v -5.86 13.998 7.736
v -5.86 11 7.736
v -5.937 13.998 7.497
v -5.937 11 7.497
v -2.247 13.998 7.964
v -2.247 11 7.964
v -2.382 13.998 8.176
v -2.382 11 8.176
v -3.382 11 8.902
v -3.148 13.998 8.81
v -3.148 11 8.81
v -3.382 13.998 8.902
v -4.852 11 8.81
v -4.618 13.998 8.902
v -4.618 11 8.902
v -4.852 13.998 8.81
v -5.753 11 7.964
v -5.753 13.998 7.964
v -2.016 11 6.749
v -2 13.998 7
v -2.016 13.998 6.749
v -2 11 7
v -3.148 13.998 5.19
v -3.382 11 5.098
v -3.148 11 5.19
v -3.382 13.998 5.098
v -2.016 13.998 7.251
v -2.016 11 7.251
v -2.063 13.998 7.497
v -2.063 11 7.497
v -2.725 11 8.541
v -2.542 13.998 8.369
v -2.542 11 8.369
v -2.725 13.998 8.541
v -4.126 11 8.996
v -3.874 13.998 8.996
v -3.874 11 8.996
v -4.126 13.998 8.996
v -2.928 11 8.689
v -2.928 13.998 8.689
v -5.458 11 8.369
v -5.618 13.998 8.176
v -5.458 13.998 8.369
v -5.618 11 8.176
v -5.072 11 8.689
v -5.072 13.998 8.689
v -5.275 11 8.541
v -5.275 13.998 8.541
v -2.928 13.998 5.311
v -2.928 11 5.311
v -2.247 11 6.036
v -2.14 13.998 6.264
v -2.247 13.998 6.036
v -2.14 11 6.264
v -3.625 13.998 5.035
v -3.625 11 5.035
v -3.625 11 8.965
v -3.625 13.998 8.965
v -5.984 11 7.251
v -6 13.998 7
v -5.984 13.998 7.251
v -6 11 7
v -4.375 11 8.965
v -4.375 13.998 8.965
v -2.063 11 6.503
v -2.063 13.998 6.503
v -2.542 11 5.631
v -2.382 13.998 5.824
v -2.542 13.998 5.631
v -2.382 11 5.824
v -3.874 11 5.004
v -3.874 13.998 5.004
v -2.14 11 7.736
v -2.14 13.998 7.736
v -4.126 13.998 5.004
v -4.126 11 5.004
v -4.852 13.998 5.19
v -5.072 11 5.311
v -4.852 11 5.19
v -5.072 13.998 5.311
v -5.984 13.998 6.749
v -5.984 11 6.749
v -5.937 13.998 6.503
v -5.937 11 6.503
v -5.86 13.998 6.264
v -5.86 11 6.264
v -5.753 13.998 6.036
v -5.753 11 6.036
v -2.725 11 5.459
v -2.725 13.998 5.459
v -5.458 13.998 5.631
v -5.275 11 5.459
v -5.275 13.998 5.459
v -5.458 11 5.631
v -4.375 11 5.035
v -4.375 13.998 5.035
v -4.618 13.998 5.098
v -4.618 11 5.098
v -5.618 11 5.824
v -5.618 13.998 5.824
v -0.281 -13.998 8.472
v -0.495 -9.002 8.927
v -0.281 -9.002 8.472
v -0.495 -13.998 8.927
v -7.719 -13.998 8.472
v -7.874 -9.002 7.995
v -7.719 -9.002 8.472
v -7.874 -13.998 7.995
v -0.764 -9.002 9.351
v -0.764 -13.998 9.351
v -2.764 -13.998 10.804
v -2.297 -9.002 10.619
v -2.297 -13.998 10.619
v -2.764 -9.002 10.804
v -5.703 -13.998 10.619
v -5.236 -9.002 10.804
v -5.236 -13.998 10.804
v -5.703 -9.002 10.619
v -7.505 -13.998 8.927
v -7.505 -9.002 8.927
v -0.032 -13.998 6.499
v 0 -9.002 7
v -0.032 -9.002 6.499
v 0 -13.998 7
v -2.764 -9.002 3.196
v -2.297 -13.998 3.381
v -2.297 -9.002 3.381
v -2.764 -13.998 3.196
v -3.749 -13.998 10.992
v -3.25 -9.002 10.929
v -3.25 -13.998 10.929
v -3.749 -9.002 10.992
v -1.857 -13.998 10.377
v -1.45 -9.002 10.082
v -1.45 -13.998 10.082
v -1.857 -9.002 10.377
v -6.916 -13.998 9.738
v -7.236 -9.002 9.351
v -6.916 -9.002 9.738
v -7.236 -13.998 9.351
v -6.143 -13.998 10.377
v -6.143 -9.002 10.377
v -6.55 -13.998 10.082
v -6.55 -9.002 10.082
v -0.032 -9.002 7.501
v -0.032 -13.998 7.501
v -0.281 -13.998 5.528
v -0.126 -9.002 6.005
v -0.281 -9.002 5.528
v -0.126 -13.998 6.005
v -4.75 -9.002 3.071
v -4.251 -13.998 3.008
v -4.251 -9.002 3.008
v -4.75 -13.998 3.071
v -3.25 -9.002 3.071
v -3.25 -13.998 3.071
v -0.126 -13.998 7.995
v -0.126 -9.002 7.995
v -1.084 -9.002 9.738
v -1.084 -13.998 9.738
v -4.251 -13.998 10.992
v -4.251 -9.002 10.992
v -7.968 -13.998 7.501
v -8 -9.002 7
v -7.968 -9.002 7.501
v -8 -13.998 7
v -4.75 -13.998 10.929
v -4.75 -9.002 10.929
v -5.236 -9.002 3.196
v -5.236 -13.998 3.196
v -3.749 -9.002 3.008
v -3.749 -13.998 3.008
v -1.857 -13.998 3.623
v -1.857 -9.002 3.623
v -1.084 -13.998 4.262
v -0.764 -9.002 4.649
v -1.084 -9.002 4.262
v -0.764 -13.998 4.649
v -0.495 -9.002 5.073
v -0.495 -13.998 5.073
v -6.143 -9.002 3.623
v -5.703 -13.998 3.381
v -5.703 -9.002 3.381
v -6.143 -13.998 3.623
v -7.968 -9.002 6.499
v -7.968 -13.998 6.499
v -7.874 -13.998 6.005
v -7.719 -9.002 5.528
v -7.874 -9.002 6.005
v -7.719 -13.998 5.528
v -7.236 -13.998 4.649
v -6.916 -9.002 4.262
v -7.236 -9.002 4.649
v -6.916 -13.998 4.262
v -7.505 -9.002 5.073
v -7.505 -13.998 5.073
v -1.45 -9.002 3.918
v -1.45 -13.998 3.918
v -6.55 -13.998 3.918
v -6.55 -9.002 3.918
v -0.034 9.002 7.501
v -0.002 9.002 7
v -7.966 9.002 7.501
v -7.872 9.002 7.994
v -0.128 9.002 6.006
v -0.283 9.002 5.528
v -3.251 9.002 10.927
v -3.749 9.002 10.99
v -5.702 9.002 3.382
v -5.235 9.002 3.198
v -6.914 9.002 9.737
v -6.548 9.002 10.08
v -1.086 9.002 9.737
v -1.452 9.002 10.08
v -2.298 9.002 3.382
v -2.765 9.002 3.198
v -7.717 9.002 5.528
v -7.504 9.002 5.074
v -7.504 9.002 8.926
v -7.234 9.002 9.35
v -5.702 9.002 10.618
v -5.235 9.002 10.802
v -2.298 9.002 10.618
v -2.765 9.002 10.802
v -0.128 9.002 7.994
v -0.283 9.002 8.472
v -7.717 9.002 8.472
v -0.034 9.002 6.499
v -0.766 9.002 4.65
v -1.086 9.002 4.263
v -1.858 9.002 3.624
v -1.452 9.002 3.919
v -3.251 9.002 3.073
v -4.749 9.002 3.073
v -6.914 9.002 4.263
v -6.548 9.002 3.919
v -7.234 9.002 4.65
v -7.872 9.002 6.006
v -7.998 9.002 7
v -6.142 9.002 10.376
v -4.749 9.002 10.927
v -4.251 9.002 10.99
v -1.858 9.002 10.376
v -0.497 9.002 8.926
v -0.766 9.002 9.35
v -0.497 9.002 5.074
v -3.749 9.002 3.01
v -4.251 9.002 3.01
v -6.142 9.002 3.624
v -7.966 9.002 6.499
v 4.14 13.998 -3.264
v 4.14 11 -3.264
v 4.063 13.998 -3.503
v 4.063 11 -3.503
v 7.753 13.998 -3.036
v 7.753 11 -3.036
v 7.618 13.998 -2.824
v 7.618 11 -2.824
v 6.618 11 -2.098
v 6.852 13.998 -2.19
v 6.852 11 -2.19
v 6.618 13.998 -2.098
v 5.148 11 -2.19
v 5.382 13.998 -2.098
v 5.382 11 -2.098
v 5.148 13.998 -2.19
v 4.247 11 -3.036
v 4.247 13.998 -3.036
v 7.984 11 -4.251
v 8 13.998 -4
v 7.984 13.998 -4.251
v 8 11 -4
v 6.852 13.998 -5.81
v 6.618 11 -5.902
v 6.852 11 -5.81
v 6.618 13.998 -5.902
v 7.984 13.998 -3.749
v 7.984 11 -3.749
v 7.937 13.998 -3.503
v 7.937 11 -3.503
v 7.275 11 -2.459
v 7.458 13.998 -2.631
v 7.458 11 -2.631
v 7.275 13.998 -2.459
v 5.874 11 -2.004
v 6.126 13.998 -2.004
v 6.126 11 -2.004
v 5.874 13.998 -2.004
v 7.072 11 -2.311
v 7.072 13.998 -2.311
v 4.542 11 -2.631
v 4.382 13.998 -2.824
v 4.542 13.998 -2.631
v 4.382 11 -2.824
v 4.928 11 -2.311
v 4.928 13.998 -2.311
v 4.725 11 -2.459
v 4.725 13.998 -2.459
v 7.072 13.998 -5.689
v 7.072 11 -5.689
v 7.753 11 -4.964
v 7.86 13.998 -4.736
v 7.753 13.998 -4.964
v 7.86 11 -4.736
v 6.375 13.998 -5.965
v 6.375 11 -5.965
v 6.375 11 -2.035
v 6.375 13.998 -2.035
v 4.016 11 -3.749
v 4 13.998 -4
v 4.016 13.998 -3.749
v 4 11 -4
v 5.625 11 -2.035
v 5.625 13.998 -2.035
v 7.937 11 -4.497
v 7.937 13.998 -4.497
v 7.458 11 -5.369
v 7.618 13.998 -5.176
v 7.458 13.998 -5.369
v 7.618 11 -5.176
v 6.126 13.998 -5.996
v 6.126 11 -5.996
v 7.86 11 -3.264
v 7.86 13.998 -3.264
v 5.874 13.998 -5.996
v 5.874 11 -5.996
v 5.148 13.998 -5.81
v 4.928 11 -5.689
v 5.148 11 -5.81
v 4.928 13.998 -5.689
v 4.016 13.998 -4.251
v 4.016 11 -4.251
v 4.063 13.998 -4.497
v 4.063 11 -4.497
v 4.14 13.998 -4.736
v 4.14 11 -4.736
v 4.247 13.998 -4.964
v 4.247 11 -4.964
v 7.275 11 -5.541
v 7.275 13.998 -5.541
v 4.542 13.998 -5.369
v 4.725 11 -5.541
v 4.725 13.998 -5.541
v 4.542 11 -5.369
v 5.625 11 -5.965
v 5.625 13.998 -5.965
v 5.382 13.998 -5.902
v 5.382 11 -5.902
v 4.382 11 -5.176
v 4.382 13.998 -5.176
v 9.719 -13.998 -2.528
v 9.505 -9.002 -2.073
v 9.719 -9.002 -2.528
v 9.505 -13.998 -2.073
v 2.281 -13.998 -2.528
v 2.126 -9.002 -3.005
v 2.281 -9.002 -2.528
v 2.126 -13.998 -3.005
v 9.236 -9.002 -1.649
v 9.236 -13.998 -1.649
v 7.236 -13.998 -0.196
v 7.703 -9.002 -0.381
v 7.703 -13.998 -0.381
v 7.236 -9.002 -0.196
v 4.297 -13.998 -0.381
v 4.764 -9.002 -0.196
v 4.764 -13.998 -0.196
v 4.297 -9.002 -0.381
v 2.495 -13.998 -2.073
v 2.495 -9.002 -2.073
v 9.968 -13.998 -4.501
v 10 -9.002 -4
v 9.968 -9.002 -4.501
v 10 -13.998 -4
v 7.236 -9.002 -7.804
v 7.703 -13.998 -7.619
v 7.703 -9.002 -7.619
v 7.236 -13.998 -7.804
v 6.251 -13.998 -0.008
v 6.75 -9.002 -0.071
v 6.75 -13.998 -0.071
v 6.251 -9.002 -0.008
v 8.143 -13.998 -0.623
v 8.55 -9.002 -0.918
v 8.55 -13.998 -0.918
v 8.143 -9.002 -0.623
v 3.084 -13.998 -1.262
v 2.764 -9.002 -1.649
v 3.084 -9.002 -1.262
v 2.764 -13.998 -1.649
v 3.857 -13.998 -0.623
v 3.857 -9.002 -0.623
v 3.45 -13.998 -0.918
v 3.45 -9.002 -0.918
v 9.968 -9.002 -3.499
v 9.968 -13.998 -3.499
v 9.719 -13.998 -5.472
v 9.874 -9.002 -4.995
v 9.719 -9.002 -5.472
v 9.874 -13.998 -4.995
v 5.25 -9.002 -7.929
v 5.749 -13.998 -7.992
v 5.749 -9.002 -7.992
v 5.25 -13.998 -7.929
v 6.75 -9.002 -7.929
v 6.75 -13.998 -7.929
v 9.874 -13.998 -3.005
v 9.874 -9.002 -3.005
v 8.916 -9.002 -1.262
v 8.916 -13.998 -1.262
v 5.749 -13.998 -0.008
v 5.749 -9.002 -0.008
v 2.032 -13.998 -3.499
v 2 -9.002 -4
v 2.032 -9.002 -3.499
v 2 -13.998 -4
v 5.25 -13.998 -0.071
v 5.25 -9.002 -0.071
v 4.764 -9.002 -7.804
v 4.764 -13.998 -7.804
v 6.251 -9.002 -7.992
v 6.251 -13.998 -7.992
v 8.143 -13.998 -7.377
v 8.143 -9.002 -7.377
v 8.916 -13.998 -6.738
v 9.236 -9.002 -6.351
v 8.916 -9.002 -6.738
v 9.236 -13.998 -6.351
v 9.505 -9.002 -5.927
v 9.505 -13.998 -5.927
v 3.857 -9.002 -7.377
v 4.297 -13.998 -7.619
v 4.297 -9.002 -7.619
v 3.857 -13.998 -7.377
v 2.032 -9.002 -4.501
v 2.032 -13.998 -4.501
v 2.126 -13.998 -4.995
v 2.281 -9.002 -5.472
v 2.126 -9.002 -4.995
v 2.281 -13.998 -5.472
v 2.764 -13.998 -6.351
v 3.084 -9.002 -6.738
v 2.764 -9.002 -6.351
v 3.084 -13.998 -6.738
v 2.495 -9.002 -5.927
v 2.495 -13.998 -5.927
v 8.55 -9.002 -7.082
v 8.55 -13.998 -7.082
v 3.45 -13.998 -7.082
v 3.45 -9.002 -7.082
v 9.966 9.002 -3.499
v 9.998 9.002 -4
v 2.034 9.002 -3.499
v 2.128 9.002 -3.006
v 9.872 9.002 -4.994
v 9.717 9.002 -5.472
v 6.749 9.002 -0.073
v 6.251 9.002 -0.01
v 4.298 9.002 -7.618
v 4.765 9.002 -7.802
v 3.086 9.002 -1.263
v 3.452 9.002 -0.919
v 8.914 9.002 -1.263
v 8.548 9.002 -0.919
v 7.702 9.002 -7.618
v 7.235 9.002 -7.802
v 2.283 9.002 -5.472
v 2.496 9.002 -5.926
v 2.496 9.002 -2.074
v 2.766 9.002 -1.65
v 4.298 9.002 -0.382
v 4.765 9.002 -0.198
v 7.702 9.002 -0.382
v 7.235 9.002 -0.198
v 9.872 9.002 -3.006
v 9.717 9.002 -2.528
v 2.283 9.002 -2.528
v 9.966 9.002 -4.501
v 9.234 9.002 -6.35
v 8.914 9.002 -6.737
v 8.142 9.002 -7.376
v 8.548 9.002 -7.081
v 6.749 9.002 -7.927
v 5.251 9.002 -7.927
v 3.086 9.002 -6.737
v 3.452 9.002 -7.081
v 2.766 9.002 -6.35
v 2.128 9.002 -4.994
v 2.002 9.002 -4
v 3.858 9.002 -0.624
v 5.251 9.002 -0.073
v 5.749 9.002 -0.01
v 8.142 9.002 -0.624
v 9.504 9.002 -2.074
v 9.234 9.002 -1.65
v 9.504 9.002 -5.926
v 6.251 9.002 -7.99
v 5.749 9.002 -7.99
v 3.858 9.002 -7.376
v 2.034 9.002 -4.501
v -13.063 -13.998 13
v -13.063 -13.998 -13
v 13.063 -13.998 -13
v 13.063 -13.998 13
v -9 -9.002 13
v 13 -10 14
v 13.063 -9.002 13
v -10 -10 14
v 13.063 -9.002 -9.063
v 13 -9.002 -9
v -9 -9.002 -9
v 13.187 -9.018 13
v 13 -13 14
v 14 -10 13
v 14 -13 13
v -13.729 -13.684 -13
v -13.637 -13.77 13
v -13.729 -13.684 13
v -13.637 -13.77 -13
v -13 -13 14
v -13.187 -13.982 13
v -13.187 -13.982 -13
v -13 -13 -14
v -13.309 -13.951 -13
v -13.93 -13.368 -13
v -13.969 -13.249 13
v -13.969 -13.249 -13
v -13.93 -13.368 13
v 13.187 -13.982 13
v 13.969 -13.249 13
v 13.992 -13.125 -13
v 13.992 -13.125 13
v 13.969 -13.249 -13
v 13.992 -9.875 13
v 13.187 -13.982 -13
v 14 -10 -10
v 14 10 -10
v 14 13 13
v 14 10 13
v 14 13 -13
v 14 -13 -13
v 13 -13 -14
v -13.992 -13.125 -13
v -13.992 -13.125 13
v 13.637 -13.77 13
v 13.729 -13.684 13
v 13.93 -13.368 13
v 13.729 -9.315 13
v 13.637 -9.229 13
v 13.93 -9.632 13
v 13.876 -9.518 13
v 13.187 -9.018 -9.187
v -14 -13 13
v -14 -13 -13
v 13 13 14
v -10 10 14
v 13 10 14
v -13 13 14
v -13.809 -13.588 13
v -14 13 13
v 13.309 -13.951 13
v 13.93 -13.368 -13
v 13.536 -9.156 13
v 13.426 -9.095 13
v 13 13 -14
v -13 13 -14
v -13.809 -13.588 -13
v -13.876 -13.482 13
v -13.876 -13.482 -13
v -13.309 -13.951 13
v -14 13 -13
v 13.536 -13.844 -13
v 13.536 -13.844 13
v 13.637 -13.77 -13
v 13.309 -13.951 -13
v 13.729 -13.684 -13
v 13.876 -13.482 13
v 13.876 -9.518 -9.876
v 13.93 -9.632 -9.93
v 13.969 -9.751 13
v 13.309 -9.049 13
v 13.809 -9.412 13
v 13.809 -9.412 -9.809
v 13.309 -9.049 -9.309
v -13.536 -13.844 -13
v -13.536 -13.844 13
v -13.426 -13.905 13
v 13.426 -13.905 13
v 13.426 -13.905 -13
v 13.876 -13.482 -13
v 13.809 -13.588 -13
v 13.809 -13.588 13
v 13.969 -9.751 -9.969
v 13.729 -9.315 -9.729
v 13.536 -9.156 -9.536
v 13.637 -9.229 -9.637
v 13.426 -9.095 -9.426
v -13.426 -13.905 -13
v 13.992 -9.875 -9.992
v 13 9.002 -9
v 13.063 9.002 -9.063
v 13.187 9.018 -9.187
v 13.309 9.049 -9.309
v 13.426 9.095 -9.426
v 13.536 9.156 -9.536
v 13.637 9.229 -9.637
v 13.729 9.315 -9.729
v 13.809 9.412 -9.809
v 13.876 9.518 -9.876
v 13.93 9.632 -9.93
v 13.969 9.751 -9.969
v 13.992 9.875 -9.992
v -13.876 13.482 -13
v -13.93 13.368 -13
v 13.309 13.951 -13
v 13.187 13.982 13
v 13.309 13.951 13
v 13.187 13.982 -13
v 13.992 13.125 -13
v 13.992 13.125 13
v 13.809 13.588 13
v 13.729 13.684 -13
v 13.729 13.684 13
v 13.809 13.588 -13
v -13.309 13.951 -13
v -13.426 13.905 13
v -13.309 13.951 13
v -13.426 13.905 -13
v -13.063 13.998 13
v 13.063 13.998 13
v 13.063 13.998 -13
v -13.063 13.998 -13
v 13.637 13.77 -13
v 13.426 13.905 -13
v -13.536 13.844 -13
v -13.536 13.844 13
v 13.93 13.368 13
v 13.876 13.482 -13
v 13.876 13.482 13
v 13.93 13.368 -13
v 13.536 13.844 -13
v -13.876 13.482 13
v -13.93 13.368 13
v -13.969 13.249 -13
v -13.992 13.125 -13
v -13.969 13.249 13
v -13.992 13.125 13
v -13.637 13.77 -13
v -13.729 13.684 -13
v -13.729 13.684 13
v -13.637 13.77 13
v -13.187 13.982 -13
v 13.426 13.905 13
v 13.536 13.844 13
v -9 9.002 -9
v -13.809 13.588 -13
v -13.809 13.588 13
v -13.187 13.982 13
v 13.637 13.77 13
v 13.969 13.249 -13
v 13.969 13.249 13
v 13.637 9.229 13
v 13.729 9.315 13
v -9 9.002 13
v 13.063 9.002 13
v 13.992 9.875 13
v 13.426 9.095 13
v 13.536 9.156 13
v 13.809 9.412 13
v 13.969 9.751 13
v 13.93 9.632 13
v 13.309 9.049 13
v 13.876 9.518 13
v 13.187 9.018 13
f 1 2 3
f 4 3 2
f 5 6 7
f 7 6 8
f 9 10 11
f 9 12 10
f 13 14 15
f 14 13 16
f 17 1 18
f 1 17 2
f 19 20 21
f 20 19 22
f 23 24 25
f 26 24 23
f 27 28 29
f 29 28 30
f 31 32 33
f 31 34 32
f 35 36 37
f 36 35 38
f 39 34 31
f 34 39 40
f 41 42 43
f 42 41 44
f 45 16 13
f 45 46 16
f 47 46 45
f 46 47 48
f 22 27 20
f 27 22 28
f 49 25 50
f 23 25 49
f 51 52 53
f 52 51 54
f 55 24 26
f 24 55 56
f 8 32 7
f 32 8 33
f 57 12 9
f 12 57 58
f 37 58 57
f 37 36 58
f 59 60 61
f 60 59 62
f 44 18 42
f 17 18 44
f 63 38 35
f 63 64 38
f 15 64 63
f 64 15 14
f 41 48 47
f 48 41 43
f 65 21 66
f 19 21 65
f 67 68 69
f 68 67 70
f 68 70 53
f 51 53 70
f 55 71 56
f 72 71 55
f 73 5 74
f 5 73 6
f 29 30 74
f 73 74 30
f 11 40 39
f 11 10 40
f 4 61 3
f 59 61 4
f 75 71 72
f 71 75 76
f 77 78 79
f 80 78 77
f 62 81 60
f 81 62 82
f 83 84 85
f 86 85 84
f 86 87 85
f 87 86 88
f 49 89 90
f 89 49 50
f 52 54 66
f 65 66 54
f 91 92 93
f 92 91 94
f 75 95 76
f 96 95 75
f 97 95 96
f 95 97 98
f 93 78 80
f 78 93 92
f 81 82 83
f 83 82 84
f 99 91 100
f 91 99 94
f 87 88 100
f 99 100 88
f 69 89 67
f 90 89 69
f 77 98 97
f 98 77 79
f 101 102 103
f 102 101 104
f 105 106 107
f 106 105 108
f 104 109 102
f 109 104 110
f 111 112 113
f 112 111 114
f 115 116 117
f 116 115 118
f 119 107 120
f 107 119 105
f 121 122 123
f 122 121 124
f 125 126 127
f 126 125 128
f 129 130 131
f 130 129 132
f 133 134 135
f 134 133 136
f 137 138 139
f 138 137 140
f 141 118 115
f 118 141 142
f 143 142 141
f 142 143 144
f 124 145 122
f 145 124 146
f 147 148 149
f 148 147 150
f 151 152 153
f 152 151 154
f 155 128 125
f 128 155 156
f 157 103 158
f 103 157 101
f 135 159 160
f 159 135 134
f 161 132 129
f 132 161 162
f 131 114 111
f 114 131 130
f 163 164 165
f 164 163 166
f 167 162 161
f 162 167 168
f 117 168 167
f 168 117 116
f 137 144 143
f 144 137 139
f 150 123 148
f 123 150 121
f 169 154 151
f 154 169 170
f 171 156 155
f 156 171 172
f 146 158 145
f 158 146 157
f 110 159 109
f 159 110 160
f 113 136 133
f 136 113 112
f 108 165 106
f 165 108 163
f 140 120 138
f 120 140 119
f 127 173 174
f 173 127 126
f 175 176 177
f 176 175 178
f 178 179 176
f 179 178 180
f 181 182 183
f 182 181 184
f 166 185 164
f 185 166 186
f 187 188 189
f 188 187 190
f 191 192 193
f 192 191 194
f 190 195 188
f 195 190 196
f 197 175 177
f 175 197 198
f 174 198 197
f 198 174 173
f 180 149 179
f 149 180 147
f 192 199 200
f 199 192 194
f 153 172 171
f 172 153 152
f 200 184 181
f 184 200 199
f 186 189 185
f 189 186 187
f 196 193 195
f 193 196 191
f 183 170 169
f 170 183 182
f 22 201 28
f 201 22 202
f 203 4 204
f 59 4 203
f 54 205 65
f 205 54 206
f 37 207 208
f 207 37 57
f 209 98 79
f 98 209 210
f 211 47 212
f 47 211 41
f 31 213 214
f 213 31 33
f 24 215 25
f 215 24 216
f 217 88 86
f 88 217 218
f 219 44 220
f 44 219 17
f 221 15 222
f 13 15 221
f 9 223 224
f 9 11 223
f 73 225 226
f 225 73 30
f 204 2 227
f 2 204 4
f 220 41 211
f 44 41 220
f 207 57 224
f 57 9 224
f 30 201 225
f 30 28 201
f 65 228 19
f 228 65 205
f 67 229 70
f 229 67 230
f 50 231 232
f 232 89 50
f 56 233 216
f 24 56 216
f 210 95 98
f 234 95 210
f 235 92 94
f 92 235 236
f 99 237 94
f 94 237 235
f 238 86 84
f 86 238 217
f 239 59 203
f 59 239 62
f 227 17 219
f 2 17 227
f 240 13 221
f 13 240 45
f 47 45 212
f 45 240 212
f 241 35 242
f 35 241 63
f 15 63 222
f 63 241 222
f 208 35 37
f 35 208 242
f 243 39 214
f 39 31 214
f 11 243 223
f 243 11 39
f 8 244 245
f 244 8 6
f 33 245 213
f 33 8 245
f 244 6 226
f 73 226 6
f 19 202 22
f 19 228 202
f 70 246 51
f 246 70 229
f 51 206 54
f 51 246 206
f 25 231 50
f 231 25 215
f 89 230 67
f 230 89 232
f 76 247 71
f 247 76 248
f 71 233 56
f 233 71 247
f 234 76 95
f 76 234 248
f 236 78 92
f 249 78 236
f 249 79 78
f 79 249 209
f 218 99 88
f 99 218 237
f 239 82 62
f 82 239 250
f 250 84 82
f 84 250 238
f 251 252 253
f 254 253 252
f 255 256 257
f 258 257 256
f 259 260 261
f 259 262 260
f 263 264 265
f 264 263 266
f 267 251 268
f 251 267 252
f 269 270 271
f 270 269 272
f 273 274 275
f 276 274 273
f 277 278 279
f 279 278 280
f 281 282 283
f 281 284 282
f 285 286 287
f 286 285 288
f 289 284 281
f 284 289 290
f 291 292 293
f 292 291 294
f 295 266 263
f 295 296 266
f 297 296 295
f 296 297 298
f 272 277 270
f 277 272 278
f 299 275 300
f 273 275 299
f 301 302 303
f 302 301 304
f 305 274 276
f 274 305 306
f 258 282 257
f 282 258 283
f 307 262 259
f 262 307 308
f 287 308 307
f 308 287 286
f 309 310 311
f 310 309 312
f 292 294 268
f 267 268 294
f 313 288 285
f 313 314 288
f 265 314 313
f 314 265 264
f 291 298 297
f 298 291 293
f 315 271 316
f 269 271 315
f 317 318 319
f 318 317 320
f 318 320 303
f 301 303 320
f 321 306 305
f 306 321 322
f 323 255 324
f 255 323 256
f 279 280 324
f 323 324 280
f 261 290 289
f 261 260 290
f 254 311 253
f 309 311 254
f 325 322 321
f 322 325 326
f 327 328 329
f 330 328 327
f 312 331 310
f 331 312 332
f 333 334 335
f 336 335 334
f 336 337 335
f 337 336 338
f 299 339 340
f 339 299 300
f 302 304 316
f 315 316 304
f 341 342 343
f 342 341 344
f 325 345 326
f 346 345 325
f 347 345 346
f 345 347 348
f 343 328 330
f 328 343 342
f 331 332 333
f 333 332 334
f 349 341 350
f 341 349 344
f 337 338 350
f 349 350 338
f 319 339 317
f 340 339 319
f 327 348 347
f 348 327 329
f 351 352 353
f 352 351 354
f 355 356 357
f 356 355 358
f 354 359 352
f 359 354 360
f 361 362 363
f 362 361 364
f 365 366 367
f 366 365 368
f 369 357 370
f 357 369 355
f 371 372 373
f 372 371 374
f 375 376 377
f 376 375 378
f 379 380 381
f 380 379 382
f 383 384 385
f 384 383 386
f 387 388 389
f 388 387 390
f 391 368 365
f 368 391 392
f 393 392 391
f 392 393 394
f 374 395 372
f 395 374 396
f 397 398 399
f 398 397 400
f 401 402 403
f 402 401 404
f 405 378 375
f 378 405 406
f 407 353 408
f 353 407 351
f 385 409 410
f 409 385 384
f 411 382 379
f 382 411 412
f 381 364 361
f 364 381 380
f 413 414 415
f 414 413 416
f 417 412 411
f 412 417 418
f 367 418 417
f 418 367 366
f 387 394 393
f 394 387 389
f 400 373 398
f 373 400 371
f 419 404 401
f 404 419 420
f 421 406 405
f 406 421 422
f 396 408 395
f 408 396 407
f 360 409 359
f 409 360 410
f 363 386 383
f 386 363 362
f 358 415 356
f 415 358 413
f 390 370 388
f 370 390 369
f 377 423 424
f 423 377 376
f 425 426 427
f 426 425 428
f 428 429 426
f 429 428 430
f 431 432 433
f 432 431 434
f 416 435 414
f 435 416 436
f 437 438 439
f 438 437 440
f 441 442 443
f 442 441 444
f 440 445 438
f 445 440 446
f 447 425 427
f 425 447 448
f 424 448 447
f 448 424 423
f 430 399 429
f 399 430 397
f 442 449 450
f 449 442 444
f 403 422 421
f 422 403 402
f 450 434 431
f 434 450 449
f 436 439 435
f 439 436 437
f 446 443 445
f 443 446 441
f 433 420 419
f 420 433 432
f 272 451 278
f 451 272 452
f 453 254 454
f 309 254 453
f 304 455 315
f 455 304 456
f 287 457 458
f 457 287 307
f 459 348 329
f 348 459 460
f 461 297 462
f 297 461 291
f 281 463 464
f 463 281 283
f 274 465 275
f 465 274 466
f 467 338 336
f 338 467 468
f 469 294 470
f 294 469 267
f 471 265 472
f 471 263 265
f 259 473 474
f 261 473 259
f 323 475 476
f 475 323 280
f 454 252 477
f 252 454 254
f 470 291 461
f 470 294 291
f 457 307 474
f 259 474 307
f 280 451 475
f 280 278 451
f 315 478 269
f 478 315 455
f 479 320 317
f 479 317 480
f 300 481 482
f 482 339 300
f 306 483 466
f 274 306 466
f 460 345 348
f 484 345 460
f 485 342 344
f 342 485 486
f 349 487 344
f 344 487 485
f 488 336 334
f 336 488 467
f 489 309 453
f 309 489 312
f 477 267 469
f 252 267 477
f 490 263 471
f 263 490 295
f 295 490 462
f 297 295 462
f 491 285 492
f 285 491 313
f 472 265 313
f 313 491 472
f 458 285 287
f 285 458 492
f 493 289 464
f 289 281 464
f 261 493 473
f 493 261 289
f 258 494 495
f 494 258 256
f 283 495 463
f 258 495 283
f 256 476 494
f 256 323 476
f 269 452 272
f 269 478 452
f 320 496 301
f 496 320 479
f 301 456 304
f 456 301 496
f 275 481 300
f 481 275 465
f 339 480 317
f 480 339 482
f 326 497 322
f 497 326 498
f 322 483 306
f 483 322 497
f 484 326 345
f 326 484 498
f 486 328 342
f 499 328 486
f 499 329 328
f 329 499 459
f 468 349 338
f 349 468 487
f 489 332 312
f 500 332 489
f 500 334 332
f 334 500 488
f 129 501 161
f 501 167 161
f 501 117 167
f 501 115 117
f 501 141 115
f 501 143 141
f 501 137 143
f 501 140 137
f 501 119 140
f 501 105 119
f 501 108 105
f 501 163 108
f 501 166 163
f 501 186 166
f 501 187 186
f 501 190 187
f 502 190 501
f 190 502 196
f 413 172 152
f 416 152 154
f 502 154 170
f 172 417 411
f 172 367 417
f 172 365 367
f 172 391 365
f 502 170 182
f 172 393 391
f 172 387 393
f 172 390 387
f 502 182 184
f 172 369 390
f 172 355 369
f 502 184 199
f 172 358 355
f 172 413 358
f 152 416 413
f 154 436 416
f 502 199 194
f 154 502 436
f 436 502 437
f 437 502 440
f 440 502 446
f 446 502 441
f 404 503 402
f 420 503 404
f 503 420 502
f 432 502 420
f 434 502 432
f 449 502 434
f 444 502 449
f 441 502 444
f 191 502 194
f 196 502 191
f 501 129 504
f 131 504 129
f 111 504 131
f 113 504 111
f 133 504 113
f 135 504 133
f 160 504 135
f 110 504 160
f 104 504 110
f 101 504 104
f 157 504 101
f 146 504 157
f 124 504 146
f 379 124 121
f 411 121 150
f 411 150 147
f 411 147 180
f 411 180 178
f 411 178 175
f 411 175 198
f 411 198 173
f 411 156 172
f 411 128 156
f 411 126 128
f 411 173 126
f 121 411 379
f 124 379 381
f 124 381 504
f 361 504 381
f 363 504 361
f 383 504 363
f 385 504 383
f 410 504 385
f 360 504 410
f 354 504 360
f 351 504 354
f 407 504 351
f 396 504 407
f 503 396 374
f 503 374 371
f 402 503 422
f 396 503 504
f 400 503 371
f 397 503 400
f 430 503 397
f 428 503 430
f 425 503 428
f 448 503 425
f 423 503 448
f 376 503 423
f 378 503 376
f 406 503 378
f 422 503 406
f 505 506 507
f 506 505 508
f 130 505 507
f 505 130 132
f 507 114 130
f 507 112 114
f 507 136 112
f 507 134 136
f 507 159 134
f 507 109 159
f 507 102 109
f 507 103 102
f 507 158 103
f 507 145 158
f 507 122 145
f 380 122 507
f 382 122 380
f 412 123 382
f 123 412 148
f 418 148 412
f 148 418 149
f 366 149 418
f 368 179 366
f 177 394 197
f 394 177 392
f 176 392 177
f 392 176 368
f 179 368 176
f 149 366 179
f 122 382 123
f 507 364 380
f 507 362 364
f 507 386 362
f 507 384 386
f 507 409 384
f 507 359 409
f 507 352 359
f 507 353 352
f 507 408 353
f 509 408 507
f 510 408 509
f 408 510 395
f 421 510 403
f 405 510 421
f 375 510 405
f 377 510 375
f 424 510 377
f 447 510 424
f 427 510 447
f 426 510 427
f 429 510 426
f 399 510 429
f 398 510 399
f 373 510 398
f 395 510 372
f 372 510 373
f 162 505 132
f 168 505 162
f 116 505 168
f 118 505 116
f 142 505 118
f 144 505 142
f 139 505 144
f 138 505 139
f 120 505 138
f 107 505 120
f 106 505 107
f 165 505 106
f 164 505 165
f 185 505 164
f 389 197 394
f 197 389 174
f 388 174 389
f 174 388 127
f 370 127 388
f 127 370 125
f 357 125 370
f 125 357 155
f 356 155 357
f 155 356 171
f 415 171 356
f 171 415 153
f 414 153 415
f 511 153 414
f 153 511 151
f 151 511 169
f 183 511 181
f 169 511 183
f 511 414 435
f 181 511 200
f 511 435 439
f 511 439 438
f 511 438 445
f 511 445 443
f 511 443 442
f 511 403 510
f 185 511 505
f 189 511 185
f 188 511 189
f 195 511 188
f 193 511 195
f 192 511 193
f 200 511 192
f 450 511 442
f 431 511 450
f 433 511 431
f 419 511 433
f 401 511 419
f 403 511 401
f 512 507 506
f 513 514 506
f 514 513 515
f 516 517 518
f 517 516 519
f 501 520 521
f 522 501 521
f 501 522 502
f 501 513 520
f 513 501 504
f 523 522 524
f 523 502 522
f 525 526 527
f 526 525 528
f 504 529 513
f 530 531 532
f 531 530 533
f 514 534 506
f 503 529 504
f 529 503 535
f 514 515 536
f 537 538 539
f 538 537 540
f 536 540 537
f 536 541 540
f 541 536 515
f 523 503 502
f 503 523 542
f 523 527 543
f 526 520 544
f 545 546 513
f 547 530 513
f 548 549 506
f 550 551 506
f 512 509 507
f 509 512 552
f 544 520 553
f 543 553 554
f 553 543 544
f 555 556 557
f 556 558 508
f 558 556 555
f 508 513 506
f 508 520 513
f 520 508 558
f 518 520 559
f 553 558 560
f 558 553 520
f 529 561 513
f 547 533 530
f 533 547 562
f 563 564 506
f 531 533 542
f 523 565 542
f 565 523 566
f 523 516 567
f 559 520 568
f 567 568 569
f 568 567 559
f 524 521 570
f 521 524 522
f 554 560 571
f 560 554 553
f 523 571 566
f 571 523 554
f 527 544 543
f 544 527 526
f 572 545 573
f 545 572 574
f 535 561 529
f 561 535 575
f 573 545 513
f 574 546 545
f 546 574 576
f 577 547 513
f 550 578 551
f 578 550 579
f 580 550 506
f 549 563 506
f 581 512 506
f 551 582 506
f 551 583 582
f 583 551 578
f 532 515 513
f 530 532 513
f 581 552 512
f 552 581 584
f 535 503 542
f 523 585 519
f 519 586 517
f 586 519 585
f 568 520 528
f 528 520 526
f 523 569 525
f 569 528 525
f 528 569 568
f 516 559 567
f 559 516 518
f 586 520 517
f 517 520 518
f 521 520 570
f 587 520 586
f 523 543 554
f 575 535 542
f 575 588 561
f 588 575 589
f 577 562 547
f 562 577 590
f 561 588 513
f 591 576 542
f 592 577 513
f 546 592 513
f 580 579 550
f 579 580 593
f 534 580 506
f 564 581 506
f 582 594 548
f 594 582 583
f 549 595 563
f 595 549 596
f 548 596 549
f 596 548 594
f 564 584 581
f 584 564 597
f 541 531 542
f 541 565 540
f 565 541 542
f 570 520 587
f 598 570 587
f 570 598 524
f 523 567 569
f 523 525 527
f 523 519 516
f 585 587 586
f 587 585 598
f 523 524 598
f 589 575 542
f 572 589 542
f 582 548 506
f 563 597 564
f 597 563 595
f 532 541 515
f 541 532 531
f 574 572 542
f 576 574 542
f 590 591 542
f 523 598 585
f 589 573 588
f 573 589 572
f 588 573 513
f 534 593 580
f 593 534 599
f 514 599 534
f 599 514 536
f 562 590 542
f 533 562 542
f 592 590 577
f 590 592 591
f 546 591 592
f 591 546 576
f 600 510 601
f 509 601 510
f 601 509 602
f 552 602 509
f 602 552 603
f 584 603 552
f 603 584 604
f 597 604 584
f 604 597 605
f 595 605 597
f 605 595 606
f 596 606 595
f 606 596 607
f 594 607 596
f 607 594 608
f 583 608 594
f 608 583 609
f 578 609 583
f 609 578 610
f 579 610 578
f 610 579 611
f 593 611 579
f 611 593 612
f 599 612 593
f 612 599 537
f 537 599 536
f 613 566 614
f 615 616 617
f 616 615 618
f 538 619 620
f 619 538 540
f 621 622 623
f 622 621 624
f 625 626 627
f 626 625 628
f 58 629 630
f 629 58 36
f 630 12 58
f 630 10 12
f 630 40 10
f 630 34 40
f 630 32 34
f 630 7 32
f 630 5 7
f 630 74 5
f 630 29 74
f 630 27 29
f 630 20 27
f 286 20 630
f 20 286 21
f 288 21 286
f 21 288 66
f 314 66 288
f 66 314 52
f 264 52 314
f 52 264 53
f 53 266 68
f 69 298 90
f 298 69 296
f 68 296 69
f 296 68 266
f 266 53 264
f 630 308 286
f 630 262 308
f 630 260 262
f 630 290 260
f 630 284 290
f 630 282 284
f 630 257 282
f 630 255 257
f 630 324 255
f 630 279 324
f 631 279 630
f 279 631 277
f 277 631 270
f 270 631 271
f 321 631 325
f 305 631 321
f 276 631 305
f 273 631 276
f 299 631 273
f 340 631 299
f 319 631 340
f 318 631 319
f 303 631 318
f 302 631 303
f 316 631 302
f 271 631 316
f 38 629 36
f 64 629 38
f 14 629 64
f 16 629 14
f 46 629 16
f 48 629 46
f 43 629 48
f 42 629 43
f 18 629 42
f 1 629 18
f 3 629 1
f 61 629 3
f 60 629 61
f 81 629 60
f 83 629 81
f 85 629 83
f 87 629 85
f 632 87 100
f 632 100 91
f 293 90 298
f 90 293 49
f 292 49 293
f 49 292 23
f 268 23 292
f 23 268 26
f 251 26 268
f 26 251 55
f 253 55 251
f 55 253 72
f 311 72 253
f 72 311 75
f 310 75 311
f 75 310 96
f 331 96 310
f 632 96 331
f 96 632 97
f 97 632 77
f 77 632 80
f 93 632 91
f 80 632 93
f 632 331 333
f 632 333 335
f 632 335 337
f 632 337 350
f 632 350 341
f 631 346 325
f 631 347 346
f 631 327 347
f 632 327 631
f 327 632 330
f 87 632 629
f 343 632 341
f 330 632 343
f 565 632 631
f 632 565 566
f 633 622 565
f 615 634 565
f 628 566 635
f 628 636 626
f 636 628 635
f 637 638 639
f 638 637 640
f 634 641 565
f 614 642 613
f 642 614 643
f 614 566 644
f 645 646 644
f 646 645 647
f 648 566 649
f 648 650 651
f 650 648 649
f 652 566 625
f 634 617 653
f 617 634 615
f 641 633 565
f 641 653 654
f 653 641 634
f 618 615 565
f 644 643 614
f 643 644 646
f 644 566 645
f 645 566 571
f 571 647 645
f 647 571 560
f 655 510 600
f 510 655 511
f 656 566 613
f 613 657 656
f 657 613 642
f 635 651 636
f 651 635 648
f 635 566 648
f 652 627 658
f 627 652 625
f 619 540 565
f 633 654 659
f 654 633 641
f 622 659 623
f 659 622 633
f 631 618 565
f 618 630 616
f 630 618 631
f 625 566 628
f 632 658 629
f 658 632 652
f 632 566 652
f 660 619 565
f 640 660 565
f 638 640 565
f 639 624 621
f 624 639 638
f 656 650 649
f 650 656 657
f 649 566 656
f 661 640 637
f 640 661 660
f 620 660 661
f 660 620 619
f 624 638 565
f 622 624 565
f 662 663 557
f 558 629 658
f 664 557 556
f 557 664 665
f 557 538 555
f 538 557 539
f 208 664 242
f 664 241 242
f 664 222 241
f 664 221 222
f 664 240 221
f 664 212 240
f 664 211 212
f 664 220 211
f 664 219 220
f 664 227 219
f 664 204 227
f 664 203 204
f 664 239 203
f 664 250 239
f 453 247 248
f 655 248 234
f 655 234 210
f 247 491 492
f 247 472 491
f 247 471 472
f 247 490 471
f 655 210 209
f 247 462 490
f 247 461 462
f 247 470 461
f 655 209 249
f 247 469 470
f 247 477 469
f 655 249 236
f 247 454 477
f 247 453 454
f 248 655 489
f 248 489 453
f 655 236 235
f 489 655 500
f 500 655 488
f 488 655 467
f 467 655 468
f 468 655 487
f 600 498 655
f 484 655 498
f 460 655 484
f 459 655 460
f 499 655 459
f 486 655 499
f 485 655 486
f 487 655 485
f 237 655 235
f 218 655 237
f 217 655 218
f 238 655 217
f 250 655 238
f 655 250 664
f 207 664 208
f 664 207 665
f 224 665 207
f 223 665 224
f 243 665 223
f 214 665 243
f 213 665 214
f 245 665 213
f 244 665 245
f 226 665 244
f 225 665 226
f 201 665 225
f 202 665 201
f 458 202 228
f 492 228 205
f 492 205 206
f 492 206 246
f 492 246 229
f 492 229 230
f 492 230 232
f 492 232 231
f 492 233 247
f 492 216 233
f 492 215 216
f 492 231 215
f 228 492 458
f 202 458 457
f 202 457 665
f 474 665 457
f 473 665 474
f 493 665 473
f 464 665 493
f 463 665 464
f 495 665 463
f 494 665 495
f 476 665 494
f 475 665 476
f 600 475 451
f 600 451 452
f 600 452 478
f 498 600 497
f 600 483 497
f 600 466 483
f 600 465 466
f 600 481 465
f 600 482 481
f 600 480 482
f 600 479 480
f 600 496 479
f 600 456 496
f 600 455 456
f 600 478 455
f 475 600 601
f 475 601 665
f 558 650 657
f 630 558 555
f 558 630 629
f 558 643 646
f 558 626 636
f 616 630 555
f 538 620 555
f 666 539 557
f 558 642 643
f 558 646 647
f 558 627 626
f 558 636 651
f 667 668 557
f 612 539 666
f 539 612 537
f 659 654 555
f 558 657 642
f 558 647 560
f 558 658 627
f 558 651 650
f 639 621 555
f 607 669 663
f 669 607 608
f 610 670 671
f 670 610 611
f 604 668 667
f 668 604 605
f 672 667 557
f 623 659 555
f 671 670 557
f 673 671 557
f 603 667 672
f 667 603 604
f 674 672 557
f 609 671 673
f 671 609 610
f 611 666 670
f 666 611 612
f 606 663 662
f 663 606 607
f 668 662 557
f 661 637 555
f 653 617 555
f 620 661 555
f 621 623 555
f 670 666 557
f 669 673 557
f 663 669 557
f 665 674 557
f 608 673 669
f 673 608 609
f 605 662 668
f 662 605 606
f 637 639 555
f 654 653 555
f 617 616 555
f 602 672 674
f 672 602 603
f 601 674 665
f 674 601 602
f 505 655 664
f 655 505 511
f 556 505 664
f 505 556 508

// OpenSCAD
// print a pair of these to hold a whiteboard marker. 
// Accepts drywall screws

$fn=50;

//check clearances:
%cube(18, center=true);

difference() {
    // add chamfers to bottom surfaces and fillets to verticals:
    minkowski(){
        // main body with cutout removed and minkowski allowances
        difference(){
            cube (26, center=true);
            translate([5, 0, 5]) cube ([30, 20, 30], center=true);
        }
        // tool for minkowski function:
        union() {
            cylinder(r1=1, r2=0, h=1);
            translate([0, 0, -1]) cylinder(r2=1, r1=0, h=1);
        }
    }
    // position copies of horizontal holes:
    for (i = [[-4, 0, 7], [6, 0, -4]]) {
        translate(i) {
            rotate([90, 0, 0]) union() {
                cylinder(r1=2, r2=2, h=40, center=true);
                translate([0, 0, 20]) cylinder(r1=4, r2=4, h=40, center=true);
                translate([0, 0, -13]) cylinder(r1=0, r2=5, h=5);
            }
        }
    }
}
